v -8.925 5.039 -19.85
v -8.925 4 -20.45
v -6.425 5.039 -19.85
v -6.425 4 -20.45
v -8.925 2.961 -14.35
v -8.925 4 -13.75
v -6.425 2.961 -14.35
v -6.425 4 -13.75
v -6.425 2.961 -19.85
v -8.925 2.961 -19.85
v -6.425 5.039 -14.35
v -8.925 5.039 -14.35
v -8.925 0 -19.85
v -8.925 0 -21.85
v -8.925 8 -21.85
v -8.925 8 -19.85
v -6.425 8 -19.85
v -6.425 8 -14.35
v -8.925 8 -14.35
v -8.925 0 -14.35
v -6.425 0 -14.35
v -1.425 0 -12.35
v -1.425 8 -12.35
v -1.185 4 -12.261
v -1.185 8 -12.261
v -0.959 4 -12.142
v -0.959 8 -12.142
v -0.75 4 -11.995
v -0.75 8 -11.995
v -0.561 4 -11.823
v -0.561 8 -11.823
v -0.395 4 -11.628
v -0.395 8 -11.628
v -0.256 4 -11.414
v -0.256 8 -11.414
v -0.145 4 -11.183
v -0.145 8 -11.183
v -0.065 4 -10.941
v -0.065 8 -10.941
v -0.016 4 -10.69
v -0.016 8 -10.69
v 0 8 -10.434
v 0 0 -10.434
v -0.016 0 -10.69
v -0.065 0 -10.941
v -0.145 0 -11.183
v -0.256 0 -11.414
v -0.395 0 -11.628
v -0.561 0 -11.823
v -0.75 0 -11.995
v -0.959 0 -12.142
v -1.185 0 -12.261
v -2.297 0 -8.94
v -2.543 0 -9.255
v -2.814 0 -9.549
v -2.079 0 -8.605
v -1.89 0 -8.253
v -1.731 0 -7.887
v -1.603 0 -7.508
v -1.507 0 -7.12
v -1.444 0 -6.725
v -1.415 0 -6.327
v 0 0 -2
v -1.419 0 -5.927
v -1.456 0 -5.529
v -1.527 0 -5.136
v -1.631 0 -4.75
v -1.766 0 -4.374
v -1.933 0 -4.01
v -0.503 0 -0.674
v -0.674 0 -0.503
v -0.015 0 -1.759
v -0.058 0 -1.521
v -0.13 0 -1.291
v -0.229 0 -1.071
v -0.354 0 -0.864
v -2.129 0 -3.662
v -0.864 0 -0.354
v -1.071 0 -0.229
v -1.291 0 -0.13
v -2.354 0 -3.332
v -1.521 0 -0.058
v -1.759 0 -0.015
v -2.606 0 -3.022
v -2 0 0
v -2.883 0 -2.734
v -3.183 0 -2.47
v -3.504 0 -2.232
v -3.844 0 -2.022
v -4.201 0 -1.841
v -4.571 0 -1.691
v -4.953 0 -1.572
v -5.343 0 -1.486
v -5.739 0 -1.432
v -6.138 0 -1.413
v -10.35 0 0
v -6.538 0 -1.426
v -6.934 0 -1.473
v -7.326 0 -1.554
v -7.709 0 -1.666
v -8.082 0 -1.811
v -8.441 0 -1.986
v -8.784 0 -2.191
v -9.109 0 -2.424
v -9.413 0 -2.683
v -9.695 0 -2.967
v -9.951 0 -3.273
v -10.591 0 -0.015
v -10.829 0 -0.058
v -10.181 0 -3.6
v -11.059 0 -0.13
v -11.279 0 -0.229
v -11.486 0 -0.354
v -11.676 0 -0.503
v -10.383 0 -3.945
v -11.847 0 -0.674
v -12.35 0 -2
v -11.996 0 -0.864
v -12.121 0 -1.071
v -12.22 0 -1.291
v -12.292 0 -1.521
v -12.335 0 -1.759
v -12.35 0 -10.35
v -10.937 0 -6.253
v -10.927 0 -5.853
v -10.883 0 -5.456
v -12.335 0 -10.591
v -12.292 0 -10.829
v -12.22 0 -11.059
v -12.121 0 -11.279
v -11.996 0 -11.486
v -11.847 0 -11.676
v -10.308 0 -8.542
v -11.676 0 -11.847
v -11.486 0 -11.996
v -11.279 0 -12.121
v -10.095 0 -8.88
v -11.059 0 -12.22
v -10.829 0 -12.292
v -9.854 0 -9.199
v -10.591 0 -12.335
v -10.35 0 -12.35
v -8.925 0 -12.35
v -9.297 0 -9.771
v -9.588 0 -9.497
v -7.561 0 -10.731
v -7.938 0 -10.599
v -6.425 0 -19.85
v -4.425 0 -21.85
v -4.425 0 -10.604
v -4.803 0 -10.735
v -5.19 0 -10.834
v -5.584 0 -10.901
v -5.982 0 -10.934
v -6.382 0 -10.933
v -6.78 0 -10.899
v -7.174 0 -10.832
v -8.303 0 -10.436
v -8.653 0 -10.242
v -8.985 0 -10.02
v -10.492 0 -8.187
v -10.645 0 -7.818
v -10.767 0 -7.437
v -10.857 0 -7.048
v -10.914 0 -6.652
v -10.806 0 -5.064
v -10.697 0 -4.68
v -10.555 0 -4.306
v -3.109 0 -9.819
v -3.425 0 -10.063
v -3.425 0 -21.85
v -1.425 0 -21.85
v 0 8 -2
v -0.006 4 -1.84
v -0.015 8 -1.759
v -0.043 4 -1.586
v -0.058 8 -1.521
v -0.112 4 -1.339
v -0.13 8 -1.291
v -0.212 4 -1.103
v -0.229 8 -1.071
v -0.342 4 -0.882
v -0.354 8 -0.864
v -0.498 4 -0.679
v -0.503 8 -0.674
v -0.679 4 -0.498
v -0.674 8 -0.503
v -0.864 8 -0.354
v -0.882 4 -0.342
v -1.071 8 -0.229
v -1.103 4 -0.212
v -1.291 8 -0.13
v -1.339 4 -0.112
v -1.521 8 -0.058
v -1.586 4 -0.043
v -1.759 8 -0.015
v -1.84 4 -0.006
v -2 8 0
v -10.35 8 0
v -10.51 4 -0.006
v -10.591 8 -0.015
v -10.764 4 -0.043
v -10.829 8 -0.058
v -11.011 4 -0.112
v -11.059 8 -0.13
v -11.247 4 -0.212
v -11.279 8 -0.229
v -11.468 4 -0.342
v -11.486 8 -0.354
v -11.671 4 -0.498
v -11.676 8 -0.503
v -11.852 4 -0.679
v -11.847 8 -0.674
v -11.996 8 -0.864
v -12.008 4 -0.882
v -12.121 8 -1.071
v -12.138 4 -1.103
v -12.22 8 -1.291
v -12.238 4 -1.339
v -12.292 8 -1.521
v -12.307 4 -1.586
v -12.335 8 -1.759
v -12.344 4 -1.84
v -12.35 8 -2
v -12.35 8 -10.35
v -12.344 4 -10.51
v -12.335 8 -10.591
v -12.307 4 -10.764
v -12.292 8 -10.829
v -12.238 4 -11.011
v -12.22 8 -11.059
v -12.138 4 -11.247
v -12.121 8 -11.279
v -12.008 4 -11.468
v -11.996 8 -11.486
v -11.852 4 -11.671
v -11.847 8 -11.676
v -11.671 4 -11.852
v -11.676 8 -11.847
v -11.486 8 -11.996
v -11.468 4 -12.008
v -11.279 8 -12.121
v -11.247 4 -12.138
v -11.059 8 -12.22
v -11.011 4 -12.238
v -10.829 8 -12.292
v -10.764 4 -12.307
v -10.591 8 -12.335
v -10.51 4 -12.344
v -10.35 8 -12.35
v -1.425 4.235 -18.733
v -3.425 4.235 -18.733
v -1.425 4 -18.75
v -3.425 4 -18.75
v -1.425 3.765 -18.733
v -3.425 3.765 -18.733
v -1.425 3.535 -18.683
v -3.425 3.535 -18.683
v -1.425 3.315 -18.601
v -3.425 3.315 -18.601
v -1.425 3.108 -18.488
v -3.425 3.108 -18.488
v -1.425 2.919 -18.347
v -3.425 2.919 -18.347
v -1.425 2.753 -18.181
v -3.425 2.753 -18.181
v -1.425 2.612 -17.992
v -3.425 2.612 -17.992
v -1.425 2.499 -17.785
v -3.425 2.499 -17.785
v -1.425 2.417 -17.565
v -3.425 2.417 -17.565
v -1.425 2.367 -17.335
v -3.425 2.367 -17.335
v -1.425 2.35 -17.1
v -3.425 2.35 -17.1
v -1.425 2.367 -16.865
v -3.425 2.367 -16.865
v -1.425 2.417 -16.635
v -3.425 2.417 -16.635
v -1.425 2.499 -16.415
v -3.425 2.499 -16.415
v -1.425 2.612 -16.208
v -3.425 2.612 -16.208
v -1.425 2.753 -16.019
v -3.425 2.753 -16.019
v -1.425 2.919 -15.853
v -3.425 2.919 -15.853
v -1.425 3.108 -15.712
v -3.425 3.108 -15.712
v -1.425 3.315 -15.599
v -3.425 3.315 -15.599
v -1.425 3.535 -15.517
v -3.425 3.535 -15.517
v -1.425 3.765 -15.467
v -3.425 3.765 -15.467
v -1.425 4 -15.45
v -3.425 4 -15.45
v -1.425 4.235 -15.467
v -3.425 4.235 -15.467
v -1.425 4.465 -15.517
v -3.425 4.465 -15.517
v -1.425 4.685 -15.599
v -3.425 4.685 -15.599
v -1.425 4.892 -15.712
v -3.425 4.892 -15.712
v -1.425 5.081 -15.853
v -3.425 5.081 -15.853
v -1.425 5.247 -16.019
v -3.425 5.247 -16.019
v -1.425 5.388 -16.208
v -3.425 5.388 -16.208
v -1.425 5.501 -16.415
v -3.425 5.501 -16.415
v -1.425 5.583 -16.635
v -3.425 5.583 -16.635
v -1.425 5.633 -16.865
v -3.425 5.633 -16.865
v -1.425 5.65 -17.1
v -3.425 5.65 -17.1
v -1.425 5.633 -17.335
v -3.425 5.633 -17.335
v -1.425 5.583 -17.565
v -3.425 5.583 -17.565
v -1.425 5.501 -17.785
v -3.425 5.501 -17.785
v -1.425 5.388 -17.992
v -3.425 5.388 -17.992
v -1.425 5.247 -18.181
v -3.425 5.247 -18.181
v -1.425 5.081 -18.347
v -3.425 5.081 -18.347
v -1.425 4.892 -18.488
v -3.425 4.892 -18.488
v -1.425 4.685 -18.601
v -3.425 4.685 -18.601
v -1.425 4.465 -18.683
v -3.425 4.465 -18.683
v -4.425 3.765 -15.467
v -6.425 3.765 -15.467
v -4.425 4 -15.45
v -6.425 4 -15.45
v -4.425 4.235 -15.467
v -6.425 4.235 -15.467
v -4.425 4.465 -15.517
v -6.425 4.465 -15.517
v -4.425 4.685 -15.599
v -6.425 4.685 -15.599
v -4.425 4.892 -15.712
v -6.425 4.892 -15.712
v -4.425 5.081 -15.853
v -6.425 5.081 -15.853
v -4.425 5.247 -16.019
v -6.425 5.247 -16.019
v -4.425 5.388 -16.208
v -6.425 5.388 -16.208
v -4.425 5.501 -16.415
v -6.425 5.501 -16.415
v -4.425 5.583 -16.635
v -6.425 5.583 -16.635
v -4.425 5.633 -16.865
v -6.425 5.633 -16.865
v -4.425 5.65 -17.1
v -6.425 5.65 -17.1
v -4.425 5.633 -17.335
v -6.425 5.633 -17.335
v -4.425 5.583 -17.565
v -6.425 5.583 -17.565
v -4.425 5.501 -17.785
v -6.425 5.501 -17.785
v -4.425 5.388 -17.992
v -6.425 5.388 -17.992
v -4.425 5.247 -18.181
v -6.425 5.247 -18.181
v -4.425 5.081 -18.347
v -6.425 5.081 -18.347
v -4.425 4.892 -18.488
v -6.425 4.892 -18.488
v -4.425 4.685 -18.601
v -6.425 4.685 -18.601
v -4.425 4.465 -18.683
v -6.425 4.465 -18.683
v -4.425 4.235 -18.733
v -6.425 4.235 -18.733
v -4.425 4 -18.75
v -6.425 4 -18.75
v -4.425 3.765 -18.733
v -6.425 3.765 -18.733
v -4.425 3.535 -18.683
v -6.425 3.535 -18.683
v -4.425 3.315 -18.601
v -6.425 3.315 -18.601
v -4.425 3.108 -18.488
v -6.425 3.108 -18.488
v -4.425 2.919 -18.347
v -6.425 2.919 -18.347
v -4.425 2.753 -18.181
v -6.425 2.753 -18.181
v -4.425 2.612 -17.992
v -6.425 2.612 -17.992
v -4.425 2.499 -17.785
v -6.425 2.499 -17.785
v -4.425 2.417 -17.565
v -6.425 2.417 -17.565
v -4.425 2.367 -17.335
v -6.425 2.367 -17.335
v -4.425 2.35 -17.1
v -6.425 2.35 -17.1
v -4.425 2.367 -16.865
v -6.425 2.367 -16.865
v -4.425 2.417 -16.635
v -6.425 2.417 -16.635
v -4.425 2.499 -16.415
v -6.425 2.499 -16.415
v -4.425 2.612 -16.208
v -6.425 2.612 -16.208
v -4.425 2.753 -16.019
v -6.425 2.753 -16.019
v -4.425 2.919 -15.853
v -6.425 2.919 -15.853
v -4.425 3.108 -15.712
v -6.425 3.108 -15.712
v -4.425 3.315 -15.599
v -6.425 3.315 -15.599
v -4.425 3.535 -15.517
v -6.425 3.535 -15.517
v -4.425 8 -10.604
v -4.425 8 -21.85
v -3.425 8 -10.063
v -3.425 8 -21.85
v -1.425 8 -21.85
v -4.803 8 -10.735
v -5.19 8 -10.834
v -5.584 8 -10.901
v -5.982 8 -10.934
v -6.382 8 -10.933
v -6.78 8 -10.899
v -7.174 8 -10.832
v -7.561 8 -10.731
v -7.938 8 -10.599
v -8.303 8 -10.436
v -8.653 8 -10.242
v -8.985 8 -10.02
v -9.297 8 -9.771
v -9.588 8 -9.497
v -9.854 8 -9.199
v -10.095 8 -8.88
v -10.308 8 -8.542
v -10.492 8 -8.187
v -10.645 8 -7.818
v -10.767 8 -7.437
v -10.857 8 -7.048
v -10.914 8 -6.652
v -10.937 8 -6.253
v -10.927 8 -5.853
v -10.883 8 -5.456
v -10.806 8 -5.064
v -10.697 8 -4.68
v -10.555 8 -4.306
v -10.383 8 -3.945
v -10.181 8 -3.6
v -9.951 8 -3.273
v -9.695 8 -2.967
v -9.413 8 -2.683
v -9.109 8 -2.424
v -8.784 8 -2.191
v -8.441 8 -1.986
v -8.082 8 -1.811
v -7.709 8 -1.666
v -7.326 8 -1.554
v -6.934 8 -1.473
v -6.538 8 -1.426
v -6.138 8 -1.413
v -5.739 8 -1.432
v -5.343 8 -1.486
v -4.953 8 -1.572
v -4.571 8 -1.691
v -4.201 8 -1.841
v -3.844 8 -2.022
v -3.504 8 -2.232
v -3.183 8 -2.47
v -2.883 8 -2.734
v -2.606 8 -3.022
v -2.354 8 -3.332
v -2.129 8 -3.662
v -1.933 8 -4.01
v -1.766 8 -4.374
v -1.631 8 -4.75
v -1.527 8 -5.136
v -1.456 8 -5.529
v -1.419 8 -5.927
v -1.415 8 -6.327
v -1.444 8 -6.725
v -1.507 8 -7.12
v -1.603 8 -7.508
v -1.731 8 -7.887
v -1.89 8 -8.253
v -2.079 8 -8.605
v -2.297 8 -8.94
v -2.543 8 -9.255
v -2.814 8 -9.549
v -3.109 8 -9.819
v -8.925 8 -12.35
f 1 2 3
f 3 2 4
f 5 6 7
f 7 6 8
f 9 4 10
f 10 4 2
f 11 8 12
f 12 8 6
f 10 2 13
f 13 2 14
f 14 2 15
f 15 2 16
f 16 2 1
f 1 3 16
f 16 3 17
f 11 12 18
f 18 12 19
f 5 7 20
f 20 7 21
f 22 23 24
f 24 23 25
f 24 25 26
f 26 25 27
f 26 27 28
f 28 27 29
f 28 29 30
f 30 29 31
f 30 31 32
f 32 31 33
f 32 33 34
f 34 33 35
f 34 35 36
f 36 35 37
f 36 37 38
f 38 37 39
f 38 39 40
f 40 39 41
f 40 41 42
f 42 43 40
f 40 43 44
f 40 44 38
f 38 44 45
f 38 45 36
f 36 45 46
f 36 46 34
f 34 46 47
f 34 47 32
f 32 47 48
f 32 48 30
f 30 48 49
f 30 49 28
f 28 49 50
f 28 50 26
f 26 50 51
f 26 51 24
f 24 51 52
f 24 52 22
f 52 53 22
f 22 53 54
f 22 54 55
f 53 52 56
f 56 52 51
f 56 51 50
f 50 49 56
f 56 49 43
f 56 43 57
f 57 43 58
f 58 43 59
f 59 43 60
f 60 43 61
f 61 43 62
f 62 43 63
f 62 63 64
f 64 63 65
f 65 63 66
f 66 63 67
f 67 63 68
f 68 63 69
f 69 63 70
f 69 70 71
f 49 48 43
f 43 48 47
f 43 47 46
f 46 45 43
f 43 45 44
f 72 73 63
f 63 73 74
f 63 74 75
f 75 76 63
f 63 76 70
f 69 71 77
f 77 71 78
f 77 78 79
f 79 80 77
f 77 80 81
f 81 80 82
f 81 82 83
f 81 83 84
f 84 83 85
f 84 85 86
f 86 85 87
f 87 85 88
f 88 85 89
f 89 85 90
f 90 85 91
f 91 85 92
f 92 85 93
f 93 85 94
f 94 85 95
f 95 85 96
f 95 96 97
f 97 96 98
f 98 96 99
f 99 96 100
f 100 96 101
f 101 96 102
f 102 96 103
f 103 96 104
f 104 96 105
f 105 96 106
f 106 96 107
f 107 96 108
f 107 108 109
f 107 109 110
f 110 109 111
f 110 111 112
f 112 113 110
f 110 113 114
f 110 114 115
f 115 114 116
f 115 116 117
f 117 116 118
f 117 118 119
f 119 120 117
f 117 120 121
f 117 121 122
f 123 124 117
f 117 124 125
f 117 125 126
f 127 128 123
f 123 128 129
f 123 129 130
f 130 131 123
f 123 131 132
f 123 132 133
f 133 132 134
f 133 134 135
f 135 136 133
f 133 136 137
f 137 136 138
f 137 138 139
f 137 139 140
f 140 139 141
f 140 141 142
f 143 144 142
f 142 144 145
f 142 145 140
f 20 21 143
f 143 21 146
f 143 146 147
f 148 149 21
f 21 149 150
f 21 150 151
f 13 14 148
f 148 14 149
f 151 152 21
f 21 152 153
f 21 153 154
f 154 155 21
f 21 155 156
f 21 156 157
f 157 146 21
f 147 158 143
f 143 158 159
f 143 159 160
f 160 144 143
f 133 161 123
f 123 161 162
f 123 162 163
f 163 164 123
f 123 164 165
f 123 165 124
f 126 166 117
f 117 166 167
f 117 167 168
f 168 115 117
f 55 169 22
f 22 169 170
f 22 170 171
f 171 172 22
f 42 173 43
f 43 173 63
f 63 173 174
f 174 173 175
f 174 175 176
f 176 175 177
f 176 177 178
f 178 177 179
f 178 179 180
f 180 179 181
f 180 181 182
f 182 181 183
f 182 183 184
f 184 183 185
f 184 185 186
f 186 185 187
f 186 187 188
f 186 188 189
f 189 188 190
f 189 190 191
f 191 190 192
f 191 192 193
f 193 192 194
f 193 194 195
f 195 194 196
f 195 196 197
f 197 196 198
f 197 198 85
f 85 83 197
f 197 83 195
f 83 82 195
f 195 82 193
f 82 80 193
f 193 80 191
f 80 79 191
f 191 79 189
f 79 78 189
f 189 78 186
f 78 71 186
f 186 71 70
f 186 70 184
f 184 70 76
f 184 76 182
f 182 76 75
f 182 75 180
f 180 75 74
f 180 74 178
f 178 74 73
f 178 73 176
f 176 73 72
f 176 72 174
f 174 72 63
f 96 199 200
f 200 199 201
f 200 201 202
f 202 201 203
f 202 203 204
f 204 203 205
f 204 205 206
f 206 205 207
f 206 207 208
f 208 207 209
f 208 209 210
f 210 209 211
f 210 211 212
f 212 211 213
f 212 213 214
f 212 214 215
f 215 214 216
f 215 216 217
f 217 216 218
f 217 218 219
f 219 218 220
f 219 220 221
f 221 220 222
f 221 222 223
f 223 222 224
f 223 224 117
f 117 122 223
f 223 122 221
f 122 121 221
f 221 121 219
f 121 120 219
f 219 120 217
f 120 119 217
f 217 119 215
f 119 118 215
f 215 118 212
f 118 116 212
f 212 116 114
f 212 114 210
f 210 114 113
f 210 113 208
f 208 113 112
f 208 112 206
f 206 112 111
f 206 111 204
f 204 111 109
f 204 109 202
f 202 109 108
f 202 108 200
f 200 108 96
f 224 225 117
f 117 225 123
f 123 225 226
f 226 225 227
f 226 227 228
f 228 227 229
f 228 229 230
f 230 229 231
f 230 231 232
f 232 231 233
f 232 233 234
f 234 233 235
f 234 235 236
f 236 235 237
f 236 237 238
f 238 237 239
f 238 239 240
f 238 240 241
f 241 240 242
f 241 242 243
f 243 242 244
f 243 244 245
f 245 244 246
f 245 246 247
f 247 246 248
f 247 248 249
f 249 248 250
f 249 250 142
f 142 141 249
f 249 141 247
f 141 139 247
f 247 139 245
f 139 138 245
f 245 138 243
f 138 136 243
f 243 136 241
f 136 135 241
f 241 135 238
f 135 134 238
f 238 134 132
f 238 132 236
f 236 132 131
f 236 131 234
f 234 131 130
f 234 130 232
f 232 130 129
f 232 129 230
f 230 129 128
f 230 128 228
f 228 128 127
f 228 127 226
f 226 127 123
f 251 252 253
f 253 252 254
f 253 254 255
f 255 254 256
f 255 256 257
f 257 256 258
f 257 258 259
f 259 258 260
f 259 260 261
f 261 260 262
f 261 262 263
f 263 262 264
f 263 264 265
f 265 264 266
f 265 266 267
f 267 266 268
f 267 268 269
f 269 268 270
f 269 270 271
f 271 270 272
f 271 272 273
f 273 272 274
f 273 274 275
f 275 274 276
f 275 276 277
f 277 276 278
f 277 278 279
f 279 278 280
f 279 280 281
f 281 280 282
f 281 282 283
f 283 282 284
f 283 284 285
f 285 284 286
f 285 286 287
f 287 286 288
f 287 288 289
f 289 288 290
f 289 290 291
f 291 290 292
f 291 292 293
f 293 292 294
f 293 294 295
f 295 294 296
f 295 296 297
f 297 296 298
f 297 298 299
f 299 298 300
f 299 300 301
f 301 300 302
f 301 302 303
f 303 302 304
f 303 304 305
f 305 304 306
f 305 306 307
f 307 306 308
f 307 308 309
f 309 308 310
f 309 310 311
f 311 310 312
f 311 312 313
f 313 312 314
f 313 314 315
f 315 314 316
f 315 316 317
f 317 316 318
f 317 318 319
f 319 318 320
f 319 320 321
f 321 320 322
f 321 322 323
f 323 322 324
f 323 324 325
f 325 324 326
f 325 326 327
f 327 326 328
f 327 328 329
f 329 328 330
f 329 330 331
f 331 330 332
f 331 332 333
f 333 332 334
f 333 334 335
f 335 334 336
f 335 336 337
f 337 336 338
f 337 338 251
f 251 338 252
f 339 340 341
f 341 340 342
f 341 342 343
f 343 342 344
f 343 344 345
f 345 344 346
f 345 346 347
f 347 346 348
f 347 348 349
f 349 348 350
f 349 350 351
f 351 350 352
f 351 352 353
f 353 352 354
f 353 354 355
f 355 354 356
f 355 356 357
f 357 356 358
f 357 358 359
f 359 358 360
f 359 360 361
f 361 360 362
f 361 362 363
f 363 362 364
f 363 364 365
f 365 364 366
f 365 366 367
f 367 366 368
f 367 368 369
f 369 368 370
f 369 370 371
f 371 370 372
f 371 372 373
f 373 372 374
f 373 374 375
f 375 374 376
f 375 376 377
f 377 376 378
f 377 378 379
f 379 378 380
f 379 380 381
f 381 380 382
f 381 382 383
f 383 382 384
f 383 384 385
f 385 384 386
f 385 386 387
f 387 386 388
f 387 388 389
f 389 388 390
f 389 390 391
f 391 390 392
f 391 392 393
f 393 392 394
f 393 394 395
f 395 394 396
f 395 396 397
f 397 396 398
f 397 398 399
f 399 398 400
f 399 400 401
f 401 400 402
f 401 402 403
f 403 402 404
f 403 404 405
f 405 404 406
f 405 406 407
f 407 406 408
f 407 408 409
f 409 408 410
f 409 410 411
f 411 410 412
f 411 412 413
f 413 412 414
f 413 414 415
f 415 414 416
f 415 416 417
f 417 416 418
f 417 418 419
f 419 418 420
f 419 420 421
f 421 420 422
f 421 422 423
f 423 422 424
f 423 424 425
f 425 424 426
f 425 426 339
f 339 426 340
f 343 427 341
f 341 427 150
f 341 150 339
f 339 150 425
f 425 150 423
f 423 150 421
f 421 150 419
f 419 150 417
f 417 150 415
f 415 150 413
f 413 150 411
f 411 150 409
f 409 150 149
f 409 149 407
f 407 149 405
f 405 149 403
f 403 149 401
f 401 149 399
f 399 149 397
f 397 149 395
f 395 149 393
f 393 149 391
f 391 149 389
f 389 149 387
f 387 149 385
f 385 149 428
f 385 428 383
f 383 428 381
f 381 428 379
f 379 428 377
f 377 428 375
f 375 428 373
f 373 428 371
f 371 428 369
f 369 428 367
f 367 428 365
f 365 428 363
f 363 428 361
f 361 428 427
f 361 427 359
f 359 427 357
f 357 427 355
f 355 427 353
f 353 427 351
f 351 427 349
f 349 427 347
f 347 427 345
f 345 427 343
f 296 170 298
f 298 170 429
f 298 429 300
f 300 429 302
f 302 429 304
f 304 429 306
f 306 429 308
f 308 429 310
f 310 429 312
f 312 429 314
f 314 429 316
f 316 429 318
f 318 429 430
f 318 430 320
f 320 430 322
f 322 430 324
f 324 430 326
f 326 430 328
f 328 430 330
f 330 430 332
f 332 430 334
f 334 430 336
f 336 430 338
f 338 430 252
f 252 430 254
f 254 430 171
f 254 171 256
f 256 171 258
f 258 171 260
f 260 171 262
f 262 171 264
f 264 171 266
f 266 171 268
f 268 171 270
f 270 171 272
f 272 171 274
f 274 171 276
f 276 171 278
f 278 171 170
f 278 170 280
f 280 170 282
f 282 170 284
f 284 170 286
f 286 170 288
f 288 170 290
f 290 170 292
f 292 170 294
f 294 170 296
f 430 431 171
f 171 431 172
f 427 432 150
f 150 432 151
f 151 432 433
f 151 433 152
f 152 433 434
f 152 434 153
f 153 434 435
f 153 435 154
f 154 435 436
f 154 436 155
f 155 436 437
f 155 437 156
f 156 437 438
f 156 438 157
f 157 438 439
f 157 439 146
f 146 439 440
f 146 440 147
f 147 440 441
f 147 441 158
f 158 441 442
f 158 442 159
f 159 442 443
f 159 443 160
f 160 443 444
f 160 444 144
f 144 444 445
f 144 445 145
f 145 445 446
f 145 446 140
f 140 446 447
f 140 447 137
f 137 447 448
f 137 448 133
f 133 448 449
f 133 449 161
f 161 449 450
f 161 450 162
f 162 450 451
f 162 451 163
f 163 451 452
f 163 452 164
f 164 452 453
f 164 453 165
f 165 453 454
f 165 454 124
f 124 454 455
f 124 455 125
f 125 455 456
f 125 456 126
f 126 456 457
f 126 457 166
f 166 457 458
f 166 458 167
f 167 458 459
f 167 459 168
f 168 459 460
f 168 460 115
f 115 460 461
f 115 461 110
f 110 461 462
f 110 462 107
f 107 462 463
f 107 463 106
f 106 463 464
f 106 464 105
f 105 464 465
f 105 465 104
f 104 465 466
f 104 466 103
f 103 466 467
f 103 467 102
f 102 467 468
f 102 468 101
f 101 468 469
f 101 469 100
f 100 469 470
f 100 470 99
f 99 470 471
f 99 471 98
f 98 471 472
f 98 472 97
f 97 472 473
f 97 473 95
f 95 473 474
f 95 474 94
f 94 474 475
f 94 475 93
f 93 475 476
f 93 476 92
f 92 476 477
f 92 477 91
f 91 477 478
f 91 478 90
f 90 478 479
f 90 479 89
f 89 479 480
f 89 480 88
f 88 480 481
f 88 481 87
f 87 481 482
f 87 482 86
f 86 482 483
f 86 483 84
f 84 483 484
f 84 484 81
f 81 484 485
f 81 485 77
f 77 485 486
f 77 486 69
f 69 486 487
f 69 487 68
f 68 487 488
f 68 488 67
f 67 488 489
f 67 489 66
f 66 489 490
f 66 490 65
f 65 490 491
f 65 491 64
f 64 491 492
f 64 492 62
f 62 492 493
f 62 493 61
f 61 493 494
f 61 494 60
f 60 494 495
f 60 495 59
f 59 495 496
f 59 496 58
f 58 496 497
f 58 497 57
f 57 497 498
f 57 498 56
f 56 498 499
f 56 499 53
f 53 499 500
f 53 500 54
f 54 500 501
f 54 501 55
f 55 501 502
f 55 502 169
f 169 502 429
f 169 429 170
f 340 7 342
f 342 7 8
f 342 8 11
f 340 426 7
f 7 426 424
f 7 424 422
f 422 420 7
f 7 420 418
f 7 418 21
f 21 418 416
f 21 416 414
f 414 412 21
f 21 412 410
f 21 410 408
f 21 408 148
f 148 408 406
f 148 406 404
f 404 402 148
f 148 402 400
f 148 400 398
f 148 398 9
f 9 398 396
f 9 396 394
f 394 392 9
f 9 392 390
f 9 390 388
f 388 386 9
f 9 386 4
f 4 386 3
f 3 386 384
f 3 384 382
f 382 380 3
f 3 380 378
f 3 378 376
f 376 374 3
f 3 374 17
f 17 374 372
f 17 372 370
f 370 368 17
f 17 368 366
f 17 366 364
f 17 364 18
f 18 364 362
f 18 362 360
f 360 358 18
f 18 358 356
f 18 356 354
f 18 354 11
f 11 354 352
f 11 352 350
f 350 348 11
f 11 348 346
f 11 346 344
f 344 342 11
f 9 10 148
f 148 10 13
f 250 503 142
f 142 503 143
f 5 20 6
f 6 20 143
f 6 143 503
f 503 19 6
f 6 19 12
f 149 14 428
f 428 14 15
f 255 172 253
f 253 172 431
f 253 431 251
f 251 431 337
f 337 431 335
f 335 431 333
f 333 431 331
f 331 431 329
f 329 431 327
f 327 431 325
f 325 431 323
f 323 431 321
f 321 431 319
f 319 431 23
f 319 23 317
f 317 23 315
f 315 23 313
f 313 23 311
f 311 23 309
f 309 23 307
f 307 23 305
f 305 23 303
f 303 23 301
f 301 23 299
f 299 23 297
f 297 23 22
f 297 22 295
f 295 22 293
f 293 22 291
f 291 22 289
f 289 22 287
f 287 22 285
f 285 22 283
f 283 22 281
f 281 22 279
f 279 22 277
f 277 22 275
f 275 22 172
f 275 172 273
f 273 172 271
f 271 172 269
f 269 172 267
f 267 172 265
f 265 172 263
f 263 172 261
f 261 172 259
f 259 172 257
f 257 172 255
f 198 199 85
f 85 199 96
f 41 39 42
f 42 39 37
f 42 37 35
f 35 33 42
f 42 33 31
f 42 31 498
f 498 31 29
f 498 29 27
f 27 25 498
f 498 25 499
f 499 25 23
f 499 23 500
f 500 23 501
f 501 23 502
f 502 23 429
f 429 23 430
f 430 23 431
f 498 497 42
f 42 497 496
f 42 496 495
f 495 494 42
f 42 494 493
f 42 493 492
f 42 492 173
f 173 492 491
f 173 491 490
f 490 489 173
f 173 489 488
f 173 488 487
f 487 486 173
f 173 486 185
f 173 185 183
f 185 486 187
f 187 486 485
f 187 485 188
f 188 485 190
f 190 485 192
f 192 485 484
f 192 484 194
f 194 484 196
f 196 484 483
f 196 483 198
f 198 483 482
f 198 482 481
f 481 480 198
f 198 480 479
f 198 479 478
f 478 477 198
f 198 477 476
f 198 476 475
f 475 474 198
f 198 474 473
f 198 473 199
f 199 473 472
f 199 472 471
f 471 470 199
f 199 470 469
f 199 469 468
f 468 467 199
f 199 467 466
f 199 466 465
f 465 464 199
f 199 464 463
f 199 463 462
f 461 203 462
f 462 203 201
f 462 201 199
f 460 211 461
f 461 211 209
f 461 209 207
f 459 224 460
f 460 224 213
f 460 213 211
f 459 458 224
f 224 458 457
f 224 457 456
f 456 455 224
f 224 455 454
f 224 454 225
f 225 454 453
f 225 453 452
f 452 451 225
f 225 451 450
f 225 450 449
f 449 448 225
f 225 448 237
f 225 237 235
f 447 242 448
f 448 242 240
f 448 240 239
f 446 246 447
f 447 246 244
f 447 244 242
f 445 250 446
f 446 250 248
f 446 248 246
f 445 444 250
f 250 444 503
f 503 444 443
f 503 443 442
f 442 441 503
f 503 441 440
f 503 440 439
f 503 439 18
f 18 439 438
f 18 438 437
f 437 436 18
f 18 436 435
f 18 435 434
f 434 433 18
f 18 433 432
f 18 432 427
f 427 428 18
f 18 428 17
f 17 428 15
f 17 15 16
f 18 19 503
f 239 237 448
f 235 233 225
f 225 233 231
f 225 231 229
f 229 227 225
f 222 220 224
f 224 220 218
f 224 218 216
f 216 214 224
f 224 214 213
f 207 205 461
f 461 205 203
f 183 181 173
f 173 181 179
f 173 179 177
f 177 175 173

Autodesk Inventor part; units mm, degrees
ref_plane "YZ Plane" through (0, 0, 0) normal (1, 0, 0) x (0, 1, 0)
ref_plane "XZ Plane" through (0, 0, 0) normal (0, 1, 0) x (-1, 0, 0)
ref_plane "XY Plane" through (0, 0, 0) normal (0, 0, 1) x (1, 0, 0)
sketch "Sketch4" plane through (0, 0, 0) normal (0, 1, 0) x (-1, 0, 0)
  line L0 (0, 0) -> (12.35, 0)
  line L1 (12.35, 0) -> (12.35, -12.35)
  line L2 (12.35, -12.35) -> (8.925, -12.35)
  line L3 (8.925, -12.35) -> (8.925, -21.85)
  line L4 (8.925, -21.85) -> (1.425, -21.85)
  line L5 (1.425, -21.85) -> (1.425, -12.35)
  line L6 (1.425, -12.35) -> (0, -12.35)
  line L7 (0, -12.35) -> (0, 0)
  dimension "d17" = 12.35
  dimension "d18" = 12.35
  dimension "d19" = 7.5
  dimension "d20" = 1.425
  dimension "d21" = 9.5
extrude "Extrusion2" add sketch "Sketch4" along normal blind 8
sketch "Sketch5" plane through (0, 8, 0) normal (0, 1, 0) x (1, 0, 0)
  line L0 (-8.925, 14.35) -> (-6.425, 14.35)
  line L1 (-6.425, 14.35) -> (-6.425, 19.85)
  line L2 (-6.425, 19.85) -> (-8.925, 19.85)
  line L3 (-8.925, 19.85) -> (-8.925, 14.35)
  line L4 (-1.425, 21.85) -> (-8.925, 21.85) projected
  line L5 (-8.925, 21.85) -> (-8.925, 12.35) projected
  point P0 (0, 0)
  dimension "d24" = 5.5
  dimension "d25" = 2.5
  dimension "d26" = 2
extrude "Extrusion3" cut sketch "Sketch5" against normal through all
sketch "Sketch6" plane through (0, 8, 0) normal (0, 1, 0) x (1, 0, 0)
  circle A0 centre (-6.175, 6.175) radius 4.7625
  line L0 (-12.35, 0) -> (0, 0) projected
  line L1 (0, 0) -> (0, 12.35) projected
  dimension "d29" = 9.525
  dimension "d30" = 6.175
  dimension "d31" = 6.175
extrude "Extrusion4" cut sketch "Sketch6" against normal through all
sketch "Sketch7" plane through (0, 8, 0) normal (0, 1, 0) x (1, 0, 0)
  line L0 (-4.425, 8.85) -> (-3.425, 8.85)
  line L1 (-3.425, 8.85) -> (-3.425, 21.85)
  line L2 (-3.425, 21.85) -> (-4.425, 21.85)
  line L3 (-4.425, 21.85) -> (-4.425, 8.85)
  line L4 (-1.425, 21.85) -> (-8.925, 21.85) projected
  line L5 (-1.425, 12.35) -> (-1.425, 21.85) projected
  point P0 (0, 0)
  dimension "d34" = 1
  dimension "d35" = 13
  dimension "d36" = 2
extrude "Extrusion5" cut sketch "Sketch7" against normal through all
sketch "Sketch8" plane through (-1.425, 0, -12.35) normal (1, 0, 0) x (0, 0, -1)
  circle A0 centre (4.75, 4) radius 1.65
  line L0 (0, 0) -> (9.5, 0) projected
  line L1 (9.5, 0) -> (9.5, 8) projected
  point P0 (-12.35, 0)
  dimension "d39" = 3.3
  dimension "d40" = 4
  dimension "d41" = 4.75
extrude "Extrusion6" cut sketch "Sketch8" against normal through all
fillet "Fillet1" radius 2 4 edges at (-12.35, 4, -12.35) (-12.35, 4, 0) (0, 4, 0) (0, 4, -12.35)
sketch "Sketch9" plane through (-8.925, 0, -12.35) normal (-1, 0, 0) x (0, 0, 1)
  line L0 (-8.1, 4) -> (-6.425, 1.0988)
  line L1 (-6.425, 1.0988) -> (-3.075, 1.0988)
  line L2 (-3.075, 1.0988) -> (-1.4, 4)
  line L3 (-1.4, 4) -> (-3.075, 6.9012)
  line L4 (-3.075, 6.9012) -> (-6.425, 6.9012)
  line L5 (-6.425, 6.9012) -> (-8.1, 4)
  line L6 (-9.5, 8) -> (-7.5, 8) projected
  line L7 (-9.5, 0) -> (-9.5, 8) projected
  point P0 (12.35, 0)
  dimension "d46" = 3.35
  dimension "d47" = 3.35
  dimension "d48" = 3.35
  dimension "d49" = 3.35
  dimension "d50" = 3.35
  dimension "d51" = 120
  dimension "d52" = 120
  dimension "d53" = 4
  dimension "d55" = 6.425
extrude "Extrusion7" cut sketch "Sketch9" against normal blind 2.5
equation "\"d48\" = d46"
equation "\"d49\" = d47"
equation "\"d50\" = d47"
properties part number "COLLIER"
